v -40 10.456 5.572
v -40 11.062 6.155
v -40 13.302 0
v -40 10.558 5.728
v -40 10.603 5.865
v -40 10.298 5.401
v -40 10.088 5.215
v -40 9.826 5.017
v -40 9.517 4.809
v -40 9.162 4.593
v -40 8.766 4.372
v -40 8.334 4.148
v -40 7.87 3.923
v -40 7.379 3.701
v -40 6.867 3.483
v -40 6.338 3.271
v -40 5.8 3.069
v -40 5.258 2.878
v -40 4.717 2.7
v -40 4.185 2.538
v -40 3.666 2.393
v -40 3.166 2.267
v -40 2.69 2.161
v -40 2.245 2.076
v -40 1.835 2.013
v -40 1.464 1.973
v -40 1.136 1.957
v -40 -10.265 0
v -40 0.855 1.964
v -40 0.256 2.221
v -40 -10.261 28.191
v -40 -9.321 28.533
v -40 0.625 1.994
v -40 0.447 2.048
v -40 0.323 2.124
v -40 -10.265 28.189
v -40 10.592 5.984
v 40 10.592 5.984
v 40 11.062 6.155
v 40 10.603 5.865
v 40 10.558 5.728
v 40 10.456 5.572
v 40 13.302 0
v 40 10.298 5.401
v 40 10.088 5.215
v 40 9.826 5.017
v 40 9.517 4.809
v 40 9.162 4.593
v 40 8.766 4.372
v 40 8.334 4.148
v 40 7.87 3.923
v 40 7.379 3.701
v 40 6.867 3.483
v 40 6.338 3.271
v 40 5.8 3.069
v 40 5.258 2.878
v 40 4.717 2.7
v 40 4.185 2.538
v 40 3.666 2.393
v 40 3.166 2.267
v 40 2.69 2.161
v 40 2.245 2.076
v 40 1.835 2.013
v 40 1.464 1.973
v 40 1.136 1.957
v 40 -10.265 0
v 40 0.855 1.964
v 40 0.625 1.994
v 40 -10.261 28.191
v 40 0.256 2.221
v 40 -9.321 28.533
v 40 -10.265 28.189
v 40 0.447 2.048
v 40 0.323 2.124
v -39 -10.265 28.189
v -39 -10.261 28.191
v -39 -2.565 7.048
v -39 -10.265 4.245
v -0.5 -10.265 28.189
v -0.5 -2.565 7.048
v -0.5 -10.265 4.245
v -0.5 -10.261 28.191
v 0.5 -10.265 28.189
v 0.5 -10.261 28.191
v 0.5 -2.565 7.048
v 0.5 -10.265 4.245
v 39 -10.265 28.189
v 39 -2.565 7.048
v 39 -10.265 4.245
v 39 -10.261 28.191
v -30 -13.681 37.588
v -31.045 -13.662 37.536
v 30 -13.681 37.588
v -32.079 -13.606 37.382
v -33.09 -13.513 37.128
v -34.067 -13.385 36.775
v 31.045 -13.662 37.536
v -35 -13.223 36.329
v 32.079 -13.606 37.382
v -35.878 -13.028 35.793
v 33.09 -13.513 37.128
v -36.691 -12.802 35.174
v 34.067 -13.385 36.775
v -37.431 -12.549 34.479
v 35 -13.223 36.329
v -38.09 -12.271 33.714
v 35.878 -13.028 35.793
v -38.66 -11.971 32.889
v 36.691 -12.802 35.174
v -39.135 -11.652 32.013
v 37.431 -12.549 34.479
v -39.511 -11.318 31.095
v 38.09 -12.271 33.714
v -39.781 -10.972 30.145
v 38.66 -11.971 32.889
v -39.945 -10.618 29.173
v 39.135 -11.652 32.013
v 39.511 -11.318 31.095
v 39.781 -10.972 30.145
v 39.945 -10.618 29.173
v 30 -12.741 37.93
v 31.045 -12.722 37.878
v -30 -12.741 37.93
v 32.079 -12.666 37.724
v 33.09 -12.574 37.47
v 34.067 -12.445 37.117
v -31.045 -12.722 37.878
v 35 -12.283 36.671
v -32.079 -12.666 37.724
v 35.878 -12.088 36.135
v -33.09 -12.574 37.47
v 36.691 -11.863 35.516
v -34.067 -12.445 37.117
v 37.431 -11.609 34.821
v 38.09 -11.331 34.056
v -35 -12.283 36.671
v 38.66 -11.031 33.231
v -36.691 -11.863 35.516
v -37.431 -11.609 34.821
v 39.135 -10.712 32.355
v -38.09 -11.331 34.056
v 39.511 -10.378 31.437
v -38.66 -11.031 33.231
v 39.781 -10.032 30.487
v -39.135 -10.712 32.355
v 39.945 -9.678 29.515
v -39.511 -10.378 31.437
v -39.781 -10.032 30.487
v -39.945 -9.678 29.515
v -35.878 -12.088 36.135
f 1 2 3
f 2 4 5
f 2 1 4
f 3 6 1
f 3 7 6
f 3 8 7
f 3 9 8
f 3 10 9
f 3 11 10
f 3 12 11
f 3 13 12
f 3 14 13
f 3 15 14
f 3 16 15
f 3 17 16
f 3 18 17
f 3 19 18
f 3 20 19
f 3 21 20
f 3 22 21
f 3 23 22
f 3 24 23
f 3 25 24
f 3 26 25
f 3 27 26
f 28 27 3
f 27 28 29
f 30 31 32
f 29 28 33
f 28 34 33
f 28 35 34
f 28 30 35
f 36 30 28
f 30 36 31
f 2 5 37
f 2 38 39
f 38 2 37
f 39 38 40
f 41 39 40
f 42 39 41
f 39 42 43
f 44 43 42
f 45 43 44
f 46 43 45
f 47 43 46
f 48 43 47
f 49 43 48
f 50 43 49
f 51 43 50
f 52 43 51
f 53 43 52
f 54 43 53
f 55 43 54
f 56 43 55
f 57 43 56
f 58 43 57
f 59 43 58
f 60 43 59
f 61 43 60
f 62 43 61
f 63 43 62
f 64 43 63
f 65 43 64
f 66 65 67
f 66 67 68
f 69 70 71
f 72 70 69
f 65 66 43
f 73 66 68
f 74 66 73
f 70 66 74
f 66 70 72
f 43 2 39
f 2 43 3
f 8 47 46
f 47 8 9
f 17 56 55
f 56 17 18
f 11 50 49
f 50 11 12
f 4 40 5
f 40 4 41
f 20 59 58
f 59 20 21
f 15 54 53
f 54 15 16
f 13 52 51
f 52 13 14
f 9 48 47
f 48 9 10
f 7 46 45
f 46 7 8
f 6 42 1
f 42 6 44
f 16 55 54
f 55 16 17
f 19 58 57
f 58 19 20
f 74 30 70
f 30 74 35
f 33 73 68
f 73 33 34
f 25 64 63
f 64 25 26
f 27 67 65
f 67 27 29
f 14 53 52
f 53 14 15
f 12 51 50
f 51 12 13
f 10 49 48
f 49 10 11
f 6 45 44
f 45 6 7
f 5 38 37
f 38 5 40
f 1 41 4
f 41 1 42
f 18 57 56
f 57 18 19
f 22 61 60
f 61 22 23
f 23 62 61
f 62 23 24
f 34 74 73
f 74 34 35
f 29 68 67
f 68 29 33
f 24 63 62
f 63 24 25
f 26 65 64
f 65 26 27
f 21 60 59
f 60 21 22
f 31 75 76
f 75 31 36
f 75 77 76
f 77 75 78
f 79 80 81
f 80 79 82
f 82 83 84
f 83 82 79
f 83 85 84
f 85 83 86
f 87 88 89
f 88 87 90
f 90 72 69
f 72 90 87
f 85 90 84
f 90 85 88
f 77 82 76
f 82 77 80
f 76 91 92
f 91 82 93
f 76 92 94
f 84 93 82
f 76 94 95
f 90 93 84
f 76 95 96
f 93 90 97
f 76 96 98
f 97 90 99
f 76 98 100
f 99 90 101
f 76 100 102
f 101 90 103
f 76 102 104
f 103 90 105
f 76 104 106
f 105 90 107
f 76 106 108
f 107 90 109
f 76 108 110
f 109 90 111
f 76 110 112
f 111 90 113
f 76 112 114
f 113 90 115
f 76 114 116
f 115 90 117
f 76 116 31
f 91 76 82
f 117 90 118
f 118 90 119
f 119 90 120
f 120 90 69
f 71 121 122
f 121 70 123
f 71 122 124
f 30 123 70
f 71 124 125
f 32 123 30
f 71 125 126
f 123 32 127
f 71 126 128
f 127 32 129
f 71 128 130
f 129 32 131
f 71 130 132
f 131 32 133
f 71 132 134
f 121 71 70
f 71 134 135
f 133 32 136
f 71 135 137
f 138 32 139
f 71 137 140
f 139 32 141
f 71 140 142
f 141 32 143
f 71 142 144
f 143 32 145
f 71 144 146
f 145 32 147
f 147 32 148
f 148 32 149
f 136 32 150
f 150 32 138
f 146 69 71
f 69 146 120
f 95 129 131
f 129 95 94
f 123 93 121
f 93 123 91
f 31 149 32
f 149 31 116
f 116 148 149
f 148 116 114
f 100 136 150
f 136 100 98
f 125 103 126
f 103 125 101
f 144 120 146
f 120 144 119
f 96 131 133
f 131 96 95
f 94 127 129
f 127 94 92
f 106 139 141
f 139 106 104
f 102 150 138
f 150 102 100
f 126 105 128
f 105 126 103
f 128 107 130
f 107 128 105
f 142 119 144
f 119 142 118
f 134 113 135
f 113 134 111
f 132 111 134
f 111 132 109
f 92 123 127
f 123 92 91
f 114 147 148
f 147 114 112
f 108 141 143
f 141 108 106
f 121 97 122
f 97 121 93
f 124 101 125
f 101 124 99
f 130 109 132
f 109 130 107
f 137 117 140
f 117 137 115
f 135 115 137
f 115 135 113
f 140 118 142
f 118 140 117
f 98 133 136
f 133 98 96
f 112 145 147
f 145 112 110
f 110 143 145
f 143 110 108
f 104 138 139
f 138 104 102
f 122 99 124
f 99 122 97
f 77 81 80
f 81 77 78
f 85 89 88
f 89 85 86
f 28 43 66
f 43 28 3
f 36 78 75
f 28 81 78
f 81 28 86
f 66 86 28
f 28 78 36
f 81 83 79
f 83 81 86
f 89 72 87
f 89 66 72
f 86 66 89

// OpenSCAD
module petit_thermo() {
    difference() {
        rotate([70,0,0]) difference() {
            union() {
// Bloc général                
                translate([0,-2,0]) cube([46,41,16], center=true);
// Pied arrière
                translate([0,-8,-14.5]) cube([2,30,15], center=true);
// Pieds latéraux
                for (x=[-22.5,-11.25,0,11.25,22.5]) translate([x,-27,0]) cube([1,10,16], center=true);
// Plein face basse avant
                translate([0,-27,7.5]) cube([46,10,1], center=true);
            }
            
// Évidement moitié haute
            translate([0,25/2,1]) cube([50,25,16], center=true);
            
            union() {
// Percement avant
                translate([0,0,7]) cube([39,39,3], center=true);
// Arrondis avant
                for (i=[-1,1]) translate([i*22,-2.5,5]) rotate([0,0,(i+1)*45]) difference() { 
                    cube(5);
                    cylinder(h=12,d=5, center=true, $fn=40);
                }
            }

// Évidement Thermo
            cube([43.5,44,14], center=true);

// Arrondis arrière
            for (i=[-1,1]) translate([i*13,8.5,-15]) rotate([0,0,(-i+1)*45]) difference() { 
                cube(20);
                cylinder(h=45,d=20, center=true, $fn=40);
            }
        
// Trou capteur
            translate([0,25,-7.5]) cylinder(h=3, d=20, center=true);
        }

// Plan arrière
        translate([0,19.907,-16.155]) cube([3,20,40], center=true);

// Découpe Dessous
        translate([0,0,-32.5-1]) cube([50,50,20], center=true);
        
    }
};

// petit_thermo();

*rotate([20,0,0]) translate([0,6.5,29]) cube([110,10,55], center=true);

difference() {
    rotate([20,0,0]) {
// Plaque arrière
        hull() {
            translate([0,0.5,0]) cube([80,1,1], center=true);
            for (x=[-30,30]) translate([x,0.5,30]) rotate([90,0,0]) cylinder(h=1, d=20, center=true, $fn=60);
        }
// Bas arrondi        
        translate([0,6.5,1]) difference() {
            cube([80,12,2], center=true);
            translate([0,0,1]) rotate([0,90,0]) scale([0.2,1,1]) cylinder(h=82, d=11, center=true, $fn=60);
    };
// Pieds dessous
        translate([0,6,-2.5]) cube([80,12+1,5], center=true);
        *for (x=[-39.5,-19.25,0,19.25, 39.5]) translate([x,6,-2.5]) cube([1,12,5], center=true);
// Cache avant
        *translate([0,12,-2.5]) cube([80,1,5], center=true);
// Pieds arrière
        for (x=[-39.5,0,39.5]) translate([x,-9.5,15]) cube([1,20,30], center=true);
    translate([0,-4.5,7.5/2]) cube([80,11,7.5], center=true);
    };
// Masquage des pieds
    translate([0,0,-5]) cube([85,50,10], center=true);
    translate([0,-20.265,8.19]) cube([85,20,40], center=true);
};
